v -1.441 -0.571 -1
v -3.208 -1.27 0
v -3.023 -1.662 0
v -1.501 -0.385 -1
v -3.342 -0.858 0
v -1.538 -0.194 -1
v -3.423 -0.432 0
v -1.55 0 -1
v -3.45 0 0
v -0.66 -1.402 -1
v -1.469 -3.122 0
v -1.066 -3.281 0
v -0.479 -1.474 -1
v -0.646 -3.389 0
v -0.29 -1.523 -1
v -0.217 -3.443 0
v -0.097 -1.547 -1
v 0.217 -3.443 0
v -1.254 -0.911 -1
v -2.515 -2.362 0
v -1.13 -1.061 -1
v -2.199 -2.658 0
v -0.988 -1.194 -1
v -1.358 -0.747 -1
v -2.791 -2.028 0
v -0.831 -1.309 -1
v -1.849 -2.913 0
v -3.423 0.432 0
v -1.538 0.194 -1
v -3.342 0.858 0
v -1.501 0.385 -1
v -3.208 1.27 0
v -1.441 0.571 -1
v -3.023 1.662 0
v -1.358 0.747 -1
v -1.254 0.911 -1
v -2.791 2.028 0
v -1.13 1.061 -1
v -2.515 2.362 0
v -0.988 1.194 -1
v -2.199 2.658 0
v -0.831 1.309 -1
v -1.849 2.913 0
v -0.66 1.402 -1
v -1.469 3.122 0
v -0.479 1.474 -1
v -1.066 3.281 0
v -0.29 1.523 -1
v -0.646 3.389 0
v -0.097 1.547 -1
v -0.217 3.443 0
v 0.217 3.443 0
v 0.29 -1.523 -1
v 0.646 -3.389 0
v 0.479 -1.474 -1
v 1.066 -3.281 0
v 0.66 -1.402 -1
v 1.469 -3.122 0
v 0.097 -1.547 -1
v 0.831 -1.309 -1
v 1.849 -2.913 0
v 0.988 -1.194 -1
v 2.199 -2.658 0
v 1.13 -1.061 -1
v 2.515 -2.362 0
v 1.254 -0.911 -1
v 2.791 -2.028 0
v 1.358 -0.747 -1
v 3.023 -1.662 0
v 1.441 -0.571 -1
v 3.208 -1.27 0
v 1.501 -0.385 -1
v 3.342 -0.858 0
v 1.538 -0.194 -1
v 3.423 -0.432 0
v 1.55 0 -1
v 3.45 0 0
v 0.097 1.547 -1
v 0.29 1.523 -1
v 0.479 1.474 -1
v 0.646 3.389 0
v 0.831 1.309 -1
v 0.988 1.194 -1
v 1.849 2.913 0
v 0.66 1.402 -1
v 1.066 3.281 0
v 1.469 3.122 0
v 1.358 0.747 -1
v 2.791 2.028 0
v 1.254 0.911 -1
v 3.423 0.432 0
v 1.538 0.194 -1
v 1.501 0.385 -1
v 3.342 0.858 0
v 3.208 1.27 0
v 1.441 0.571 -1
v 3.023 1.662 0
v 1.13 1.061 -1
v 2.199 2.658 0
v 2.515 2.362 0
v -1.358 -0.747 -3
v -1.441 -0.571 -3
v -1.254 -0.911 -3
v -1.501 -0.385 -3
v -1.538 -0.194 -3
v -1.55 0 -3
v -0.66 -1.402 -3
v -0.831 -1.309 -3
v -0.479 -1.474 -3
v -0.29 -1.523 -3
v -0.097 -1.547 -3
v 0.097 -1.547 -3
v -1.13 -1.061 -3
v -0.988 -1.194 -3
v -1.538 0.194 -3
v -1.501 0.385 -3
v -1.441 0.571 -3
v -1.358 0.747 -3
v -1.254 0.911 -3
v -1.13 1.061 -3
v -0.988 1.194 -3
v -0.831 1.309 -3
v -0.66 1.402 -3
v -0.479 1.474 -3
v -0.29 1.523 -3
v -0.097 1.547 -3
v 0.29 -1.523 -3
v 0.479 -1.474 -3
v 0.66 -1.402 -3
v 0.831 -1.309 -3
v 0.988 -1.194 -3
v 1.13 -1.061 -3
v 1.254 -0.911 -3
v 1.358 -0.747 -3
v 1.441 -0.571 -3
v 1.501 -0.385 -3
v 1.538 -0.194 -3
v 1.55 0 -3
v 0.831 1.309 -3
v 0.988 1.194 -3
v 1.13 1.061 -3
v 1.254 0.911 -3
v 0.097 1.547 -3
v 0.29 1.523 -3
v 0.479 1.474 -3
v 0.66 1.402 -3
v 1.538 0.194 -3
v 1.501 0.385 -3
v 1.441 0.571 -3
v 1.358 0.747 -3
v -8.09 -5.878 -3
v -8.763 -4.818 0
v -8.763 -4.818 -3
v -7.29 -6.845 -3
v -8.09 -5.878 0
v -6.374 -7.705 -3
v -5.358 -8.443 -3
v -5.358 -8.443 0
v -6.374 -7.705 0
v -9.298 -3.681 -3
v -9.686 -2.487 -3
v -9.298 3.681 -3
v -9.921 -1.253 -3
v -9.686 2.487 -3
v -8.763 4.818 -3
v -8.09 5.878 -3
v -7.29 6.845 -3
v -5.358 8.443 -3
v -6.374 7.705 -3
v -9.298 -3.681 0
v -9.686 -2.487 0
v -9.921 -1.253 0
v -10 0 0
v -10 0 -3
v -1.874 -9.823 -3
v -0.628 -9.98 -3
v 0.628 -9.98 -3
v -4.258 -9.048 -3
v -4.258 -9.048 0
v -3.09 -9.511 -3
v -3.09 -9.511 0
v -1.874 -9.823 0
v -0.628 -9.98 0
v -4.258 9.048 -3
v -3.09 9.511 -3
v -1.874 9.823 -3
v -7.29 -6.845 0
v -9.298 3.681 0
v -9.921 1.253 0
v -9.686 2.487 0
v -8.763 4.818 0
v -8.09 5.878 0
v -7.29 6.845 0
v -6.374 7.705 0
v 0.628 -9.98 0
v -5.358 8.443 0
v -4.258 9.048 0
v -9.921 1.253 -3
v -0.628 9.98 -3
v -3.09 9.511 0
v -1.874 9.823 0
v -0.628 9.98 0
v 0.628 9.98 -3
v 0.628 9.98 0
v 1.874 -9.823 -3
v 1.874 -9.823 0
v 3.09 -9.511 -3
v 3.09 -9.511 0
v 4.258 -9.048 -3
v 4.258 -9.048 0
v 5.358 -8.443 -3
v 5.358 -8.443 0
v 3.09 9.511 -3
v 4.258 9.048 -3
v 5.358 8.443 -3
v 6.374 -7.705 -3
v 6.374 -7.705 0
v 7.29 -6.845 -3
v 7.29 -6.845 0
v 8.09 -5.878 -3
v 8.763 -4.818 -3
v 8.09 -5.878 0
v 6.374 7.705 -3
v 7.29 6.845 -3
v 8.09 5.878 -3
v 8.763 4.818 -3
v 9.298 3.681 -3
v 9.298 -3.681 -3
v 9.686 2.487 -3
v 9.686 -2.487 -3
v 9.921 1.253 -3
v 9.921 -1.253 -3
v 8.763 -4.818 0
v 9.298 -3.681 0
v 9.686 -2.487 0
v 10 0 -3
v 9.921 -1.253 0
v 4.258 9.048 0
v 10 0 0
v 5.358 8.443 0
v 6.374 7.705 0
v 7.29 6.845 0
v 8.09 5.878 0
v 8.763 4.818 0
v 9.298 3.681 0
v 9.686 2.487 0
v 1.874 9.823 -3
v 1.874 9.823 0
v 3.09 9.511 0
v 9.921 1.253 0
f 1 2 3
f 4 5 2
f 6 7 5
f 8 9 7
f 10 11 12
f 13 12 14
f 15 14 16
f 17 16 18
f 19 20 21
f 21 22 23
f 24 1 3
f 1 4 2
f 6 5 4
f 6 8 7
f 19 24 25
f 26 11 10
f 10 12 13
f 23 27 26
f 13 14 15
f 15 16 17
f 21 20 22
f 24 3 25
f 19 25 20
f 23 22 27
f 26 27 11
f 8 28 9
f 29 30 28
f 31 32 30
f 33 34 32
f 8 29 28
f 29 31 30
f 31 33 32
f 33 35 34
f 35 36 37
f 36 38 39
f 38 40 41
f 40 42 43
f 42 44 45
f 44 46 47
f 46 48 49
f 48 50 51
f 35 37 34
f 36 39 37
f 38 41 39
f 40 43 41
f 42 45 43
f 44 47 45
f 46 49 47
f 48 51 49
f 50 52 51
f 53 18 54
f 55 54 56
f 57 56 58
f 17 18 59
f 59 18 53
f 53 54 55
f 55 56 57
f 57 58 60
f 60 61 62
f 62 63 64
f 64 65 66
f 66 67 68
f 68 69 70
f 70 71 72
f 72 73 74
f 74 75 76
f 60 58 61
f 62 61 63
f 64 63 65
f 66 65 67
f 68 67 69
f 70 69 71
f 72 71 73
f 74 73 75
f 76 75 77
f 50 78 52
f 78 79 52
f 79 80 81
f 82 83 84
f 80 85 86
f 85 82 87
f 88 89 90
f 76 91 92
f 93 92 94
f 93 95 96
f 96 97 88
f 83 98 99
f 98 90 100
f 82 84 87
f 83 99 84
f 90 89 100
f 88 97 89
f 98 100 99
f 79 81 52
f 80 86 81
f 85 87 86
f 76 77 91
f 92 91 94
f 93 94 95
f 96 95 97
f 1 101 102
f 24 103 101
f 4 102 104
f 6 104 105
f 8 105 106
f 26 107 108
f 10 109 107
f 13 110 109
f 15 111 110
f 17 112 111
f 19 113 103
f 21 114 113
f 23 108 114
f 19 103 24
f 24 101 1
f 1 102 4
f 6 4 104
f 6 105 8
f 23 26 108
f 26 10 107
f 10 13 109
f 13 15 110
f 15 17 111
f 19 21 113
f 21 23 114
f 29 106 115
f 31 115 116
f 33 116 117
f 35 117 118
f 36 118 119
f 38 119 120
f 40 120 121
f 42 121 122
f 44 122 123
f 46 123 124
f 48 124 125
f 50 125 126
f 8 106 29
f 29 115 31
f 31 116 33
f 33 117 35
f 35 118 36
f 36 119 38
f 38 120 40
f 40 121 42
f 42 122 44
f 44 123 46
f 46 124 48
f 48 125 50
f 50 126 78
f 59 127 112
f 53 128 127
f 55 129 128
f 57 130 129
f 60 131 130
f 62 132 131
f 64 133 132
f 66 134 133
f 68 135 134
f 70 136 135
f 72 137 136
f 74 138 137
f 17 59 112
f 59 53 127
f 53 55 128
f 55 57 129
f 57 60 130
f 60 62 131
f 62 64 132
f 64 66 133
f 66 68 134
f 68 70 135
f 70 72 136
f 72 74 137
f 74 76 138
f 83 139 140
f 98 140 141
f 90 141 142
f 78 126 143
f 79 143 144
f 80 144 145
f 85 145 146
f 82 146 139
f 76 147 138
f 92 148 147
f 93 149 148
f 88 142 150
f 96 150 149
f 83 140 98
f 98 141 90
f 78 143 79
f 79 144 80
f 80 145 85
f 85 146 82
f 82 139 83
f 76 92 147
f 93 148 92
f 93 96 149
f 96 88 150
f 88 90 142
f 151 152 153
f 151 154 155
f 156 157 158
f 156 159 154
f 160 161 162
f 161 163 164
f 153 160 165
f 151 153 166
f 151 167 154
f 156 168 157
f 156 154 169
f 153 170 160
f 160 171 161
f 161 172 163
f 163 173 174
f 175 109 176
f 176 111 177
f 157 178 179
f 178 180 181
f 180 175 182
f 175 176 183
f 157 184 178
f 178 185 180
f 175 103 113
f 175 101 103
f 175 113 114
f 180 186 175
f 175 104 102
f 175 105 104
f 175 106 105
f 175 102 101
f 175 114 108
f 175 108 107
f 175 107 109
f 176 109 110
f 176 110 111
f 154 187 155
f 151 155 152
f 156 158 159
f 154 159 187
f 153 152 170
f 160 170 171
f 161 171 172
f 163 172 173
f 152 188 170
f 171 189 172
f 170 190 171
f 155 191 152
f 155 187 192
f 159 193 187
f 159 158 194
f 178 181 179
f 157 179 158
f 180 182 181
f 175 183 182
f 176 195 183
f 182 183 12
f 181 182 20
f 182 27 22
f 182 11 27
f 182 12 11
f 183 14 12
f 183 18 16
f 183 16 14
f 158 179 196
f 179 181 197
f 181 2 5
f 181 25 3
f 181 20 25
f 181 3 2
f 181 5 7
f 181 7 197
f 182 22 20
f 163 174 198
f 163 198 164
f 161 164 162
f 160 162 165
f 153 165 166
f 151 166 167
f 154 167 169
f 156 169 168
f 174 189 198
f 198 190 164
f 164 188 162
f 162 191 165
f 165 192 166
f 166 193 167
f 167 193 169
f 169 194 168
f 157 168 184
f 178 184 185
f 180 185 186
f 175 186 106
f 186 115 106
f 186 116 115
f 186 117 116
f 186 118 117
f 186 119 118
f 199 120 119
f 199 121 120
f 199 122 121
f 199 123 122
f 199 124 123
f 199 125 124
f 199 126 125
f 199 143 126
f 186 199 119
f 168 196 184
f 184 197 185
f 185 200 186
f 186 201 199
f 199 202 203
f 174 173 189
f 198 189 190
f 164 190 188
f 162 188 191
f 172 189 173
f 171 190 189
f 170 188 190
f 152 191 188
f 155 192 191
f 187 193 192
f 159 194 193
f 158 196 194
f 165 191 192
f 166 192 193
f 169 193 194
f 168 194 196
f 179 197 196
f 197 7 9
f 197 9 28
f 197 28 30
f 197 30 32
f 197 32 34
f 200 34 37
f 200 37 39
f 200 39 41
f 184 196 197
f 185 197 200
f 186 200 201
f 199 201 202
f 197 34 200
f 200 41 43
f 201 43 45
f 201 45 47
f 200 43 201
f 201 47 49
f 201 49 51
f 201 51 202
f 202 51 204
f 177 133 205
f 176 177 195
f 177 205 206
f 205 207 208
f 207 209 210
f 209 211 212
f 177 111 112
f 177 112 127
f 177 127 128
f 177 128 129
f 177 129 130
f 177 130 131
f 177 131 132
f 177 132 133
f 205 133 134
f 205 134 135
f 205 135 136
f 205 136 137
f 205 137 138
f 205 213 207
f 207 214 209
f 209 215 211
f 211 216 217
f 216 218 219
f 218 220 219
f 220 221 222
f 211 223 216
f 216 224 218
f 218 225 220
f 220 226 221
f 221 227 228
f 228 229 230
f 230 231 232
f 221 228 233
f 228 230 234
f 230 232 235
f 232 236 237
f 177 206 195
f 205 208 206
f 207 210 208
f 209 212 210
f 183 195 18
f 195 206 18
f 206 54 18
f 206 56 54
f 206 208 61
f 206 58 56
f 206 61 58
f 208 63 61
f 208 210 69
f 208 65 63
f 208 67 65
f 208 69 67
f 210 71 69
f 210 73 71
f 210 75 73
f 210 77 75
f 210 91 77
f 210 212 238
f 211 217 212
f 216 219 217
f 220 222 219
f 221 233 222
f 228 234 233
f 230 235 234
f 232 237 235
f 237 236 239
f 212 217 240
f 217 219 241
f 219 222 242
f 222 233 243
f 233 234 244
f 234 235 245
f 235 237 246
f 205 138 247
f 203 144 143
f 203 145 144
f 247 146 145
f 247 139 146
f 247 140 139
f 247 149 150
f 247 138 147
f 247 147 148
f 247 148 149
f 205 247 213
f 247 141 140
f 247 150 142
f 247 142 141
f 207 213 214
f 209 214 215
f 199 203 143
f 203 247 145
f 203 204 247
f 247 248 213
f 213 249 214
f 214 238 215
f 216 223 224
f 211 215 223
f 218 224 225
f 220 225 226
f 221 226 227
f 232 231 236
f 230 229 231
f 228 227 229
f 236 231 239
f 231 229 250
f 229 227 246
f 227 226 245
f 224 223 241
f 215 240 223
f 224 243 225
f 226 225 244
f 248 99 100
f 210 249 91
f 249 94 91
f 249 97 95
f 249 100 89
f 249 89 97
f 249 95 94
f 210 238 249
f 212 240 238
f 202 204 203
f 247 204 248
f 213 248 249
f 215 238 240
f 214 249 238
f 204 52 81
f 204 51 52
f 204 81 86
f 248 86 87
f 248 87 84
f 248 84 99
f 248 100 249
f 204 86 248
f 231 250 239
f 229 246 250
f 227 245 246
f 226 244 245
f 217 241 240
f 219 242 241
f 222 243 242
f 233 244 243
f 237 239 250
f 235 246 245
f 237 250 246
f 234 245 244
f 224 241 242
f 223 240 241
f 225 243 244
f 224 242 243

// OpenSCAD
$fn = 50;

difference() {
	union() {
		translate(v = [0, 0, -3.0]) {
			cylinder(h = 3, r = 10.0);
		}
	}
	union() {
		translate(v = [0, 0, 0]) {
			rotate(a = [0, 0, 0]) {
				difference() {
					union() {
						translate(v = [0, 0, -6.0]) {
							cylinder(h = 6, r = 1.25);
						}
						translate(v = [0, 0, -1.0]) {
							cylinder(h = 1.0, r1 = 1.55, r2 = 3.45);
						}
						translate(v = [0, 0, -6.0]) {
							cylinder(h = 6, r = 1.55);
						}
						translate(v = [0, 0, -6.0]) {
							cylinder(h = 6, r = 1.25);
						}
					}
					union();
				}
			}
		}
	}
}
